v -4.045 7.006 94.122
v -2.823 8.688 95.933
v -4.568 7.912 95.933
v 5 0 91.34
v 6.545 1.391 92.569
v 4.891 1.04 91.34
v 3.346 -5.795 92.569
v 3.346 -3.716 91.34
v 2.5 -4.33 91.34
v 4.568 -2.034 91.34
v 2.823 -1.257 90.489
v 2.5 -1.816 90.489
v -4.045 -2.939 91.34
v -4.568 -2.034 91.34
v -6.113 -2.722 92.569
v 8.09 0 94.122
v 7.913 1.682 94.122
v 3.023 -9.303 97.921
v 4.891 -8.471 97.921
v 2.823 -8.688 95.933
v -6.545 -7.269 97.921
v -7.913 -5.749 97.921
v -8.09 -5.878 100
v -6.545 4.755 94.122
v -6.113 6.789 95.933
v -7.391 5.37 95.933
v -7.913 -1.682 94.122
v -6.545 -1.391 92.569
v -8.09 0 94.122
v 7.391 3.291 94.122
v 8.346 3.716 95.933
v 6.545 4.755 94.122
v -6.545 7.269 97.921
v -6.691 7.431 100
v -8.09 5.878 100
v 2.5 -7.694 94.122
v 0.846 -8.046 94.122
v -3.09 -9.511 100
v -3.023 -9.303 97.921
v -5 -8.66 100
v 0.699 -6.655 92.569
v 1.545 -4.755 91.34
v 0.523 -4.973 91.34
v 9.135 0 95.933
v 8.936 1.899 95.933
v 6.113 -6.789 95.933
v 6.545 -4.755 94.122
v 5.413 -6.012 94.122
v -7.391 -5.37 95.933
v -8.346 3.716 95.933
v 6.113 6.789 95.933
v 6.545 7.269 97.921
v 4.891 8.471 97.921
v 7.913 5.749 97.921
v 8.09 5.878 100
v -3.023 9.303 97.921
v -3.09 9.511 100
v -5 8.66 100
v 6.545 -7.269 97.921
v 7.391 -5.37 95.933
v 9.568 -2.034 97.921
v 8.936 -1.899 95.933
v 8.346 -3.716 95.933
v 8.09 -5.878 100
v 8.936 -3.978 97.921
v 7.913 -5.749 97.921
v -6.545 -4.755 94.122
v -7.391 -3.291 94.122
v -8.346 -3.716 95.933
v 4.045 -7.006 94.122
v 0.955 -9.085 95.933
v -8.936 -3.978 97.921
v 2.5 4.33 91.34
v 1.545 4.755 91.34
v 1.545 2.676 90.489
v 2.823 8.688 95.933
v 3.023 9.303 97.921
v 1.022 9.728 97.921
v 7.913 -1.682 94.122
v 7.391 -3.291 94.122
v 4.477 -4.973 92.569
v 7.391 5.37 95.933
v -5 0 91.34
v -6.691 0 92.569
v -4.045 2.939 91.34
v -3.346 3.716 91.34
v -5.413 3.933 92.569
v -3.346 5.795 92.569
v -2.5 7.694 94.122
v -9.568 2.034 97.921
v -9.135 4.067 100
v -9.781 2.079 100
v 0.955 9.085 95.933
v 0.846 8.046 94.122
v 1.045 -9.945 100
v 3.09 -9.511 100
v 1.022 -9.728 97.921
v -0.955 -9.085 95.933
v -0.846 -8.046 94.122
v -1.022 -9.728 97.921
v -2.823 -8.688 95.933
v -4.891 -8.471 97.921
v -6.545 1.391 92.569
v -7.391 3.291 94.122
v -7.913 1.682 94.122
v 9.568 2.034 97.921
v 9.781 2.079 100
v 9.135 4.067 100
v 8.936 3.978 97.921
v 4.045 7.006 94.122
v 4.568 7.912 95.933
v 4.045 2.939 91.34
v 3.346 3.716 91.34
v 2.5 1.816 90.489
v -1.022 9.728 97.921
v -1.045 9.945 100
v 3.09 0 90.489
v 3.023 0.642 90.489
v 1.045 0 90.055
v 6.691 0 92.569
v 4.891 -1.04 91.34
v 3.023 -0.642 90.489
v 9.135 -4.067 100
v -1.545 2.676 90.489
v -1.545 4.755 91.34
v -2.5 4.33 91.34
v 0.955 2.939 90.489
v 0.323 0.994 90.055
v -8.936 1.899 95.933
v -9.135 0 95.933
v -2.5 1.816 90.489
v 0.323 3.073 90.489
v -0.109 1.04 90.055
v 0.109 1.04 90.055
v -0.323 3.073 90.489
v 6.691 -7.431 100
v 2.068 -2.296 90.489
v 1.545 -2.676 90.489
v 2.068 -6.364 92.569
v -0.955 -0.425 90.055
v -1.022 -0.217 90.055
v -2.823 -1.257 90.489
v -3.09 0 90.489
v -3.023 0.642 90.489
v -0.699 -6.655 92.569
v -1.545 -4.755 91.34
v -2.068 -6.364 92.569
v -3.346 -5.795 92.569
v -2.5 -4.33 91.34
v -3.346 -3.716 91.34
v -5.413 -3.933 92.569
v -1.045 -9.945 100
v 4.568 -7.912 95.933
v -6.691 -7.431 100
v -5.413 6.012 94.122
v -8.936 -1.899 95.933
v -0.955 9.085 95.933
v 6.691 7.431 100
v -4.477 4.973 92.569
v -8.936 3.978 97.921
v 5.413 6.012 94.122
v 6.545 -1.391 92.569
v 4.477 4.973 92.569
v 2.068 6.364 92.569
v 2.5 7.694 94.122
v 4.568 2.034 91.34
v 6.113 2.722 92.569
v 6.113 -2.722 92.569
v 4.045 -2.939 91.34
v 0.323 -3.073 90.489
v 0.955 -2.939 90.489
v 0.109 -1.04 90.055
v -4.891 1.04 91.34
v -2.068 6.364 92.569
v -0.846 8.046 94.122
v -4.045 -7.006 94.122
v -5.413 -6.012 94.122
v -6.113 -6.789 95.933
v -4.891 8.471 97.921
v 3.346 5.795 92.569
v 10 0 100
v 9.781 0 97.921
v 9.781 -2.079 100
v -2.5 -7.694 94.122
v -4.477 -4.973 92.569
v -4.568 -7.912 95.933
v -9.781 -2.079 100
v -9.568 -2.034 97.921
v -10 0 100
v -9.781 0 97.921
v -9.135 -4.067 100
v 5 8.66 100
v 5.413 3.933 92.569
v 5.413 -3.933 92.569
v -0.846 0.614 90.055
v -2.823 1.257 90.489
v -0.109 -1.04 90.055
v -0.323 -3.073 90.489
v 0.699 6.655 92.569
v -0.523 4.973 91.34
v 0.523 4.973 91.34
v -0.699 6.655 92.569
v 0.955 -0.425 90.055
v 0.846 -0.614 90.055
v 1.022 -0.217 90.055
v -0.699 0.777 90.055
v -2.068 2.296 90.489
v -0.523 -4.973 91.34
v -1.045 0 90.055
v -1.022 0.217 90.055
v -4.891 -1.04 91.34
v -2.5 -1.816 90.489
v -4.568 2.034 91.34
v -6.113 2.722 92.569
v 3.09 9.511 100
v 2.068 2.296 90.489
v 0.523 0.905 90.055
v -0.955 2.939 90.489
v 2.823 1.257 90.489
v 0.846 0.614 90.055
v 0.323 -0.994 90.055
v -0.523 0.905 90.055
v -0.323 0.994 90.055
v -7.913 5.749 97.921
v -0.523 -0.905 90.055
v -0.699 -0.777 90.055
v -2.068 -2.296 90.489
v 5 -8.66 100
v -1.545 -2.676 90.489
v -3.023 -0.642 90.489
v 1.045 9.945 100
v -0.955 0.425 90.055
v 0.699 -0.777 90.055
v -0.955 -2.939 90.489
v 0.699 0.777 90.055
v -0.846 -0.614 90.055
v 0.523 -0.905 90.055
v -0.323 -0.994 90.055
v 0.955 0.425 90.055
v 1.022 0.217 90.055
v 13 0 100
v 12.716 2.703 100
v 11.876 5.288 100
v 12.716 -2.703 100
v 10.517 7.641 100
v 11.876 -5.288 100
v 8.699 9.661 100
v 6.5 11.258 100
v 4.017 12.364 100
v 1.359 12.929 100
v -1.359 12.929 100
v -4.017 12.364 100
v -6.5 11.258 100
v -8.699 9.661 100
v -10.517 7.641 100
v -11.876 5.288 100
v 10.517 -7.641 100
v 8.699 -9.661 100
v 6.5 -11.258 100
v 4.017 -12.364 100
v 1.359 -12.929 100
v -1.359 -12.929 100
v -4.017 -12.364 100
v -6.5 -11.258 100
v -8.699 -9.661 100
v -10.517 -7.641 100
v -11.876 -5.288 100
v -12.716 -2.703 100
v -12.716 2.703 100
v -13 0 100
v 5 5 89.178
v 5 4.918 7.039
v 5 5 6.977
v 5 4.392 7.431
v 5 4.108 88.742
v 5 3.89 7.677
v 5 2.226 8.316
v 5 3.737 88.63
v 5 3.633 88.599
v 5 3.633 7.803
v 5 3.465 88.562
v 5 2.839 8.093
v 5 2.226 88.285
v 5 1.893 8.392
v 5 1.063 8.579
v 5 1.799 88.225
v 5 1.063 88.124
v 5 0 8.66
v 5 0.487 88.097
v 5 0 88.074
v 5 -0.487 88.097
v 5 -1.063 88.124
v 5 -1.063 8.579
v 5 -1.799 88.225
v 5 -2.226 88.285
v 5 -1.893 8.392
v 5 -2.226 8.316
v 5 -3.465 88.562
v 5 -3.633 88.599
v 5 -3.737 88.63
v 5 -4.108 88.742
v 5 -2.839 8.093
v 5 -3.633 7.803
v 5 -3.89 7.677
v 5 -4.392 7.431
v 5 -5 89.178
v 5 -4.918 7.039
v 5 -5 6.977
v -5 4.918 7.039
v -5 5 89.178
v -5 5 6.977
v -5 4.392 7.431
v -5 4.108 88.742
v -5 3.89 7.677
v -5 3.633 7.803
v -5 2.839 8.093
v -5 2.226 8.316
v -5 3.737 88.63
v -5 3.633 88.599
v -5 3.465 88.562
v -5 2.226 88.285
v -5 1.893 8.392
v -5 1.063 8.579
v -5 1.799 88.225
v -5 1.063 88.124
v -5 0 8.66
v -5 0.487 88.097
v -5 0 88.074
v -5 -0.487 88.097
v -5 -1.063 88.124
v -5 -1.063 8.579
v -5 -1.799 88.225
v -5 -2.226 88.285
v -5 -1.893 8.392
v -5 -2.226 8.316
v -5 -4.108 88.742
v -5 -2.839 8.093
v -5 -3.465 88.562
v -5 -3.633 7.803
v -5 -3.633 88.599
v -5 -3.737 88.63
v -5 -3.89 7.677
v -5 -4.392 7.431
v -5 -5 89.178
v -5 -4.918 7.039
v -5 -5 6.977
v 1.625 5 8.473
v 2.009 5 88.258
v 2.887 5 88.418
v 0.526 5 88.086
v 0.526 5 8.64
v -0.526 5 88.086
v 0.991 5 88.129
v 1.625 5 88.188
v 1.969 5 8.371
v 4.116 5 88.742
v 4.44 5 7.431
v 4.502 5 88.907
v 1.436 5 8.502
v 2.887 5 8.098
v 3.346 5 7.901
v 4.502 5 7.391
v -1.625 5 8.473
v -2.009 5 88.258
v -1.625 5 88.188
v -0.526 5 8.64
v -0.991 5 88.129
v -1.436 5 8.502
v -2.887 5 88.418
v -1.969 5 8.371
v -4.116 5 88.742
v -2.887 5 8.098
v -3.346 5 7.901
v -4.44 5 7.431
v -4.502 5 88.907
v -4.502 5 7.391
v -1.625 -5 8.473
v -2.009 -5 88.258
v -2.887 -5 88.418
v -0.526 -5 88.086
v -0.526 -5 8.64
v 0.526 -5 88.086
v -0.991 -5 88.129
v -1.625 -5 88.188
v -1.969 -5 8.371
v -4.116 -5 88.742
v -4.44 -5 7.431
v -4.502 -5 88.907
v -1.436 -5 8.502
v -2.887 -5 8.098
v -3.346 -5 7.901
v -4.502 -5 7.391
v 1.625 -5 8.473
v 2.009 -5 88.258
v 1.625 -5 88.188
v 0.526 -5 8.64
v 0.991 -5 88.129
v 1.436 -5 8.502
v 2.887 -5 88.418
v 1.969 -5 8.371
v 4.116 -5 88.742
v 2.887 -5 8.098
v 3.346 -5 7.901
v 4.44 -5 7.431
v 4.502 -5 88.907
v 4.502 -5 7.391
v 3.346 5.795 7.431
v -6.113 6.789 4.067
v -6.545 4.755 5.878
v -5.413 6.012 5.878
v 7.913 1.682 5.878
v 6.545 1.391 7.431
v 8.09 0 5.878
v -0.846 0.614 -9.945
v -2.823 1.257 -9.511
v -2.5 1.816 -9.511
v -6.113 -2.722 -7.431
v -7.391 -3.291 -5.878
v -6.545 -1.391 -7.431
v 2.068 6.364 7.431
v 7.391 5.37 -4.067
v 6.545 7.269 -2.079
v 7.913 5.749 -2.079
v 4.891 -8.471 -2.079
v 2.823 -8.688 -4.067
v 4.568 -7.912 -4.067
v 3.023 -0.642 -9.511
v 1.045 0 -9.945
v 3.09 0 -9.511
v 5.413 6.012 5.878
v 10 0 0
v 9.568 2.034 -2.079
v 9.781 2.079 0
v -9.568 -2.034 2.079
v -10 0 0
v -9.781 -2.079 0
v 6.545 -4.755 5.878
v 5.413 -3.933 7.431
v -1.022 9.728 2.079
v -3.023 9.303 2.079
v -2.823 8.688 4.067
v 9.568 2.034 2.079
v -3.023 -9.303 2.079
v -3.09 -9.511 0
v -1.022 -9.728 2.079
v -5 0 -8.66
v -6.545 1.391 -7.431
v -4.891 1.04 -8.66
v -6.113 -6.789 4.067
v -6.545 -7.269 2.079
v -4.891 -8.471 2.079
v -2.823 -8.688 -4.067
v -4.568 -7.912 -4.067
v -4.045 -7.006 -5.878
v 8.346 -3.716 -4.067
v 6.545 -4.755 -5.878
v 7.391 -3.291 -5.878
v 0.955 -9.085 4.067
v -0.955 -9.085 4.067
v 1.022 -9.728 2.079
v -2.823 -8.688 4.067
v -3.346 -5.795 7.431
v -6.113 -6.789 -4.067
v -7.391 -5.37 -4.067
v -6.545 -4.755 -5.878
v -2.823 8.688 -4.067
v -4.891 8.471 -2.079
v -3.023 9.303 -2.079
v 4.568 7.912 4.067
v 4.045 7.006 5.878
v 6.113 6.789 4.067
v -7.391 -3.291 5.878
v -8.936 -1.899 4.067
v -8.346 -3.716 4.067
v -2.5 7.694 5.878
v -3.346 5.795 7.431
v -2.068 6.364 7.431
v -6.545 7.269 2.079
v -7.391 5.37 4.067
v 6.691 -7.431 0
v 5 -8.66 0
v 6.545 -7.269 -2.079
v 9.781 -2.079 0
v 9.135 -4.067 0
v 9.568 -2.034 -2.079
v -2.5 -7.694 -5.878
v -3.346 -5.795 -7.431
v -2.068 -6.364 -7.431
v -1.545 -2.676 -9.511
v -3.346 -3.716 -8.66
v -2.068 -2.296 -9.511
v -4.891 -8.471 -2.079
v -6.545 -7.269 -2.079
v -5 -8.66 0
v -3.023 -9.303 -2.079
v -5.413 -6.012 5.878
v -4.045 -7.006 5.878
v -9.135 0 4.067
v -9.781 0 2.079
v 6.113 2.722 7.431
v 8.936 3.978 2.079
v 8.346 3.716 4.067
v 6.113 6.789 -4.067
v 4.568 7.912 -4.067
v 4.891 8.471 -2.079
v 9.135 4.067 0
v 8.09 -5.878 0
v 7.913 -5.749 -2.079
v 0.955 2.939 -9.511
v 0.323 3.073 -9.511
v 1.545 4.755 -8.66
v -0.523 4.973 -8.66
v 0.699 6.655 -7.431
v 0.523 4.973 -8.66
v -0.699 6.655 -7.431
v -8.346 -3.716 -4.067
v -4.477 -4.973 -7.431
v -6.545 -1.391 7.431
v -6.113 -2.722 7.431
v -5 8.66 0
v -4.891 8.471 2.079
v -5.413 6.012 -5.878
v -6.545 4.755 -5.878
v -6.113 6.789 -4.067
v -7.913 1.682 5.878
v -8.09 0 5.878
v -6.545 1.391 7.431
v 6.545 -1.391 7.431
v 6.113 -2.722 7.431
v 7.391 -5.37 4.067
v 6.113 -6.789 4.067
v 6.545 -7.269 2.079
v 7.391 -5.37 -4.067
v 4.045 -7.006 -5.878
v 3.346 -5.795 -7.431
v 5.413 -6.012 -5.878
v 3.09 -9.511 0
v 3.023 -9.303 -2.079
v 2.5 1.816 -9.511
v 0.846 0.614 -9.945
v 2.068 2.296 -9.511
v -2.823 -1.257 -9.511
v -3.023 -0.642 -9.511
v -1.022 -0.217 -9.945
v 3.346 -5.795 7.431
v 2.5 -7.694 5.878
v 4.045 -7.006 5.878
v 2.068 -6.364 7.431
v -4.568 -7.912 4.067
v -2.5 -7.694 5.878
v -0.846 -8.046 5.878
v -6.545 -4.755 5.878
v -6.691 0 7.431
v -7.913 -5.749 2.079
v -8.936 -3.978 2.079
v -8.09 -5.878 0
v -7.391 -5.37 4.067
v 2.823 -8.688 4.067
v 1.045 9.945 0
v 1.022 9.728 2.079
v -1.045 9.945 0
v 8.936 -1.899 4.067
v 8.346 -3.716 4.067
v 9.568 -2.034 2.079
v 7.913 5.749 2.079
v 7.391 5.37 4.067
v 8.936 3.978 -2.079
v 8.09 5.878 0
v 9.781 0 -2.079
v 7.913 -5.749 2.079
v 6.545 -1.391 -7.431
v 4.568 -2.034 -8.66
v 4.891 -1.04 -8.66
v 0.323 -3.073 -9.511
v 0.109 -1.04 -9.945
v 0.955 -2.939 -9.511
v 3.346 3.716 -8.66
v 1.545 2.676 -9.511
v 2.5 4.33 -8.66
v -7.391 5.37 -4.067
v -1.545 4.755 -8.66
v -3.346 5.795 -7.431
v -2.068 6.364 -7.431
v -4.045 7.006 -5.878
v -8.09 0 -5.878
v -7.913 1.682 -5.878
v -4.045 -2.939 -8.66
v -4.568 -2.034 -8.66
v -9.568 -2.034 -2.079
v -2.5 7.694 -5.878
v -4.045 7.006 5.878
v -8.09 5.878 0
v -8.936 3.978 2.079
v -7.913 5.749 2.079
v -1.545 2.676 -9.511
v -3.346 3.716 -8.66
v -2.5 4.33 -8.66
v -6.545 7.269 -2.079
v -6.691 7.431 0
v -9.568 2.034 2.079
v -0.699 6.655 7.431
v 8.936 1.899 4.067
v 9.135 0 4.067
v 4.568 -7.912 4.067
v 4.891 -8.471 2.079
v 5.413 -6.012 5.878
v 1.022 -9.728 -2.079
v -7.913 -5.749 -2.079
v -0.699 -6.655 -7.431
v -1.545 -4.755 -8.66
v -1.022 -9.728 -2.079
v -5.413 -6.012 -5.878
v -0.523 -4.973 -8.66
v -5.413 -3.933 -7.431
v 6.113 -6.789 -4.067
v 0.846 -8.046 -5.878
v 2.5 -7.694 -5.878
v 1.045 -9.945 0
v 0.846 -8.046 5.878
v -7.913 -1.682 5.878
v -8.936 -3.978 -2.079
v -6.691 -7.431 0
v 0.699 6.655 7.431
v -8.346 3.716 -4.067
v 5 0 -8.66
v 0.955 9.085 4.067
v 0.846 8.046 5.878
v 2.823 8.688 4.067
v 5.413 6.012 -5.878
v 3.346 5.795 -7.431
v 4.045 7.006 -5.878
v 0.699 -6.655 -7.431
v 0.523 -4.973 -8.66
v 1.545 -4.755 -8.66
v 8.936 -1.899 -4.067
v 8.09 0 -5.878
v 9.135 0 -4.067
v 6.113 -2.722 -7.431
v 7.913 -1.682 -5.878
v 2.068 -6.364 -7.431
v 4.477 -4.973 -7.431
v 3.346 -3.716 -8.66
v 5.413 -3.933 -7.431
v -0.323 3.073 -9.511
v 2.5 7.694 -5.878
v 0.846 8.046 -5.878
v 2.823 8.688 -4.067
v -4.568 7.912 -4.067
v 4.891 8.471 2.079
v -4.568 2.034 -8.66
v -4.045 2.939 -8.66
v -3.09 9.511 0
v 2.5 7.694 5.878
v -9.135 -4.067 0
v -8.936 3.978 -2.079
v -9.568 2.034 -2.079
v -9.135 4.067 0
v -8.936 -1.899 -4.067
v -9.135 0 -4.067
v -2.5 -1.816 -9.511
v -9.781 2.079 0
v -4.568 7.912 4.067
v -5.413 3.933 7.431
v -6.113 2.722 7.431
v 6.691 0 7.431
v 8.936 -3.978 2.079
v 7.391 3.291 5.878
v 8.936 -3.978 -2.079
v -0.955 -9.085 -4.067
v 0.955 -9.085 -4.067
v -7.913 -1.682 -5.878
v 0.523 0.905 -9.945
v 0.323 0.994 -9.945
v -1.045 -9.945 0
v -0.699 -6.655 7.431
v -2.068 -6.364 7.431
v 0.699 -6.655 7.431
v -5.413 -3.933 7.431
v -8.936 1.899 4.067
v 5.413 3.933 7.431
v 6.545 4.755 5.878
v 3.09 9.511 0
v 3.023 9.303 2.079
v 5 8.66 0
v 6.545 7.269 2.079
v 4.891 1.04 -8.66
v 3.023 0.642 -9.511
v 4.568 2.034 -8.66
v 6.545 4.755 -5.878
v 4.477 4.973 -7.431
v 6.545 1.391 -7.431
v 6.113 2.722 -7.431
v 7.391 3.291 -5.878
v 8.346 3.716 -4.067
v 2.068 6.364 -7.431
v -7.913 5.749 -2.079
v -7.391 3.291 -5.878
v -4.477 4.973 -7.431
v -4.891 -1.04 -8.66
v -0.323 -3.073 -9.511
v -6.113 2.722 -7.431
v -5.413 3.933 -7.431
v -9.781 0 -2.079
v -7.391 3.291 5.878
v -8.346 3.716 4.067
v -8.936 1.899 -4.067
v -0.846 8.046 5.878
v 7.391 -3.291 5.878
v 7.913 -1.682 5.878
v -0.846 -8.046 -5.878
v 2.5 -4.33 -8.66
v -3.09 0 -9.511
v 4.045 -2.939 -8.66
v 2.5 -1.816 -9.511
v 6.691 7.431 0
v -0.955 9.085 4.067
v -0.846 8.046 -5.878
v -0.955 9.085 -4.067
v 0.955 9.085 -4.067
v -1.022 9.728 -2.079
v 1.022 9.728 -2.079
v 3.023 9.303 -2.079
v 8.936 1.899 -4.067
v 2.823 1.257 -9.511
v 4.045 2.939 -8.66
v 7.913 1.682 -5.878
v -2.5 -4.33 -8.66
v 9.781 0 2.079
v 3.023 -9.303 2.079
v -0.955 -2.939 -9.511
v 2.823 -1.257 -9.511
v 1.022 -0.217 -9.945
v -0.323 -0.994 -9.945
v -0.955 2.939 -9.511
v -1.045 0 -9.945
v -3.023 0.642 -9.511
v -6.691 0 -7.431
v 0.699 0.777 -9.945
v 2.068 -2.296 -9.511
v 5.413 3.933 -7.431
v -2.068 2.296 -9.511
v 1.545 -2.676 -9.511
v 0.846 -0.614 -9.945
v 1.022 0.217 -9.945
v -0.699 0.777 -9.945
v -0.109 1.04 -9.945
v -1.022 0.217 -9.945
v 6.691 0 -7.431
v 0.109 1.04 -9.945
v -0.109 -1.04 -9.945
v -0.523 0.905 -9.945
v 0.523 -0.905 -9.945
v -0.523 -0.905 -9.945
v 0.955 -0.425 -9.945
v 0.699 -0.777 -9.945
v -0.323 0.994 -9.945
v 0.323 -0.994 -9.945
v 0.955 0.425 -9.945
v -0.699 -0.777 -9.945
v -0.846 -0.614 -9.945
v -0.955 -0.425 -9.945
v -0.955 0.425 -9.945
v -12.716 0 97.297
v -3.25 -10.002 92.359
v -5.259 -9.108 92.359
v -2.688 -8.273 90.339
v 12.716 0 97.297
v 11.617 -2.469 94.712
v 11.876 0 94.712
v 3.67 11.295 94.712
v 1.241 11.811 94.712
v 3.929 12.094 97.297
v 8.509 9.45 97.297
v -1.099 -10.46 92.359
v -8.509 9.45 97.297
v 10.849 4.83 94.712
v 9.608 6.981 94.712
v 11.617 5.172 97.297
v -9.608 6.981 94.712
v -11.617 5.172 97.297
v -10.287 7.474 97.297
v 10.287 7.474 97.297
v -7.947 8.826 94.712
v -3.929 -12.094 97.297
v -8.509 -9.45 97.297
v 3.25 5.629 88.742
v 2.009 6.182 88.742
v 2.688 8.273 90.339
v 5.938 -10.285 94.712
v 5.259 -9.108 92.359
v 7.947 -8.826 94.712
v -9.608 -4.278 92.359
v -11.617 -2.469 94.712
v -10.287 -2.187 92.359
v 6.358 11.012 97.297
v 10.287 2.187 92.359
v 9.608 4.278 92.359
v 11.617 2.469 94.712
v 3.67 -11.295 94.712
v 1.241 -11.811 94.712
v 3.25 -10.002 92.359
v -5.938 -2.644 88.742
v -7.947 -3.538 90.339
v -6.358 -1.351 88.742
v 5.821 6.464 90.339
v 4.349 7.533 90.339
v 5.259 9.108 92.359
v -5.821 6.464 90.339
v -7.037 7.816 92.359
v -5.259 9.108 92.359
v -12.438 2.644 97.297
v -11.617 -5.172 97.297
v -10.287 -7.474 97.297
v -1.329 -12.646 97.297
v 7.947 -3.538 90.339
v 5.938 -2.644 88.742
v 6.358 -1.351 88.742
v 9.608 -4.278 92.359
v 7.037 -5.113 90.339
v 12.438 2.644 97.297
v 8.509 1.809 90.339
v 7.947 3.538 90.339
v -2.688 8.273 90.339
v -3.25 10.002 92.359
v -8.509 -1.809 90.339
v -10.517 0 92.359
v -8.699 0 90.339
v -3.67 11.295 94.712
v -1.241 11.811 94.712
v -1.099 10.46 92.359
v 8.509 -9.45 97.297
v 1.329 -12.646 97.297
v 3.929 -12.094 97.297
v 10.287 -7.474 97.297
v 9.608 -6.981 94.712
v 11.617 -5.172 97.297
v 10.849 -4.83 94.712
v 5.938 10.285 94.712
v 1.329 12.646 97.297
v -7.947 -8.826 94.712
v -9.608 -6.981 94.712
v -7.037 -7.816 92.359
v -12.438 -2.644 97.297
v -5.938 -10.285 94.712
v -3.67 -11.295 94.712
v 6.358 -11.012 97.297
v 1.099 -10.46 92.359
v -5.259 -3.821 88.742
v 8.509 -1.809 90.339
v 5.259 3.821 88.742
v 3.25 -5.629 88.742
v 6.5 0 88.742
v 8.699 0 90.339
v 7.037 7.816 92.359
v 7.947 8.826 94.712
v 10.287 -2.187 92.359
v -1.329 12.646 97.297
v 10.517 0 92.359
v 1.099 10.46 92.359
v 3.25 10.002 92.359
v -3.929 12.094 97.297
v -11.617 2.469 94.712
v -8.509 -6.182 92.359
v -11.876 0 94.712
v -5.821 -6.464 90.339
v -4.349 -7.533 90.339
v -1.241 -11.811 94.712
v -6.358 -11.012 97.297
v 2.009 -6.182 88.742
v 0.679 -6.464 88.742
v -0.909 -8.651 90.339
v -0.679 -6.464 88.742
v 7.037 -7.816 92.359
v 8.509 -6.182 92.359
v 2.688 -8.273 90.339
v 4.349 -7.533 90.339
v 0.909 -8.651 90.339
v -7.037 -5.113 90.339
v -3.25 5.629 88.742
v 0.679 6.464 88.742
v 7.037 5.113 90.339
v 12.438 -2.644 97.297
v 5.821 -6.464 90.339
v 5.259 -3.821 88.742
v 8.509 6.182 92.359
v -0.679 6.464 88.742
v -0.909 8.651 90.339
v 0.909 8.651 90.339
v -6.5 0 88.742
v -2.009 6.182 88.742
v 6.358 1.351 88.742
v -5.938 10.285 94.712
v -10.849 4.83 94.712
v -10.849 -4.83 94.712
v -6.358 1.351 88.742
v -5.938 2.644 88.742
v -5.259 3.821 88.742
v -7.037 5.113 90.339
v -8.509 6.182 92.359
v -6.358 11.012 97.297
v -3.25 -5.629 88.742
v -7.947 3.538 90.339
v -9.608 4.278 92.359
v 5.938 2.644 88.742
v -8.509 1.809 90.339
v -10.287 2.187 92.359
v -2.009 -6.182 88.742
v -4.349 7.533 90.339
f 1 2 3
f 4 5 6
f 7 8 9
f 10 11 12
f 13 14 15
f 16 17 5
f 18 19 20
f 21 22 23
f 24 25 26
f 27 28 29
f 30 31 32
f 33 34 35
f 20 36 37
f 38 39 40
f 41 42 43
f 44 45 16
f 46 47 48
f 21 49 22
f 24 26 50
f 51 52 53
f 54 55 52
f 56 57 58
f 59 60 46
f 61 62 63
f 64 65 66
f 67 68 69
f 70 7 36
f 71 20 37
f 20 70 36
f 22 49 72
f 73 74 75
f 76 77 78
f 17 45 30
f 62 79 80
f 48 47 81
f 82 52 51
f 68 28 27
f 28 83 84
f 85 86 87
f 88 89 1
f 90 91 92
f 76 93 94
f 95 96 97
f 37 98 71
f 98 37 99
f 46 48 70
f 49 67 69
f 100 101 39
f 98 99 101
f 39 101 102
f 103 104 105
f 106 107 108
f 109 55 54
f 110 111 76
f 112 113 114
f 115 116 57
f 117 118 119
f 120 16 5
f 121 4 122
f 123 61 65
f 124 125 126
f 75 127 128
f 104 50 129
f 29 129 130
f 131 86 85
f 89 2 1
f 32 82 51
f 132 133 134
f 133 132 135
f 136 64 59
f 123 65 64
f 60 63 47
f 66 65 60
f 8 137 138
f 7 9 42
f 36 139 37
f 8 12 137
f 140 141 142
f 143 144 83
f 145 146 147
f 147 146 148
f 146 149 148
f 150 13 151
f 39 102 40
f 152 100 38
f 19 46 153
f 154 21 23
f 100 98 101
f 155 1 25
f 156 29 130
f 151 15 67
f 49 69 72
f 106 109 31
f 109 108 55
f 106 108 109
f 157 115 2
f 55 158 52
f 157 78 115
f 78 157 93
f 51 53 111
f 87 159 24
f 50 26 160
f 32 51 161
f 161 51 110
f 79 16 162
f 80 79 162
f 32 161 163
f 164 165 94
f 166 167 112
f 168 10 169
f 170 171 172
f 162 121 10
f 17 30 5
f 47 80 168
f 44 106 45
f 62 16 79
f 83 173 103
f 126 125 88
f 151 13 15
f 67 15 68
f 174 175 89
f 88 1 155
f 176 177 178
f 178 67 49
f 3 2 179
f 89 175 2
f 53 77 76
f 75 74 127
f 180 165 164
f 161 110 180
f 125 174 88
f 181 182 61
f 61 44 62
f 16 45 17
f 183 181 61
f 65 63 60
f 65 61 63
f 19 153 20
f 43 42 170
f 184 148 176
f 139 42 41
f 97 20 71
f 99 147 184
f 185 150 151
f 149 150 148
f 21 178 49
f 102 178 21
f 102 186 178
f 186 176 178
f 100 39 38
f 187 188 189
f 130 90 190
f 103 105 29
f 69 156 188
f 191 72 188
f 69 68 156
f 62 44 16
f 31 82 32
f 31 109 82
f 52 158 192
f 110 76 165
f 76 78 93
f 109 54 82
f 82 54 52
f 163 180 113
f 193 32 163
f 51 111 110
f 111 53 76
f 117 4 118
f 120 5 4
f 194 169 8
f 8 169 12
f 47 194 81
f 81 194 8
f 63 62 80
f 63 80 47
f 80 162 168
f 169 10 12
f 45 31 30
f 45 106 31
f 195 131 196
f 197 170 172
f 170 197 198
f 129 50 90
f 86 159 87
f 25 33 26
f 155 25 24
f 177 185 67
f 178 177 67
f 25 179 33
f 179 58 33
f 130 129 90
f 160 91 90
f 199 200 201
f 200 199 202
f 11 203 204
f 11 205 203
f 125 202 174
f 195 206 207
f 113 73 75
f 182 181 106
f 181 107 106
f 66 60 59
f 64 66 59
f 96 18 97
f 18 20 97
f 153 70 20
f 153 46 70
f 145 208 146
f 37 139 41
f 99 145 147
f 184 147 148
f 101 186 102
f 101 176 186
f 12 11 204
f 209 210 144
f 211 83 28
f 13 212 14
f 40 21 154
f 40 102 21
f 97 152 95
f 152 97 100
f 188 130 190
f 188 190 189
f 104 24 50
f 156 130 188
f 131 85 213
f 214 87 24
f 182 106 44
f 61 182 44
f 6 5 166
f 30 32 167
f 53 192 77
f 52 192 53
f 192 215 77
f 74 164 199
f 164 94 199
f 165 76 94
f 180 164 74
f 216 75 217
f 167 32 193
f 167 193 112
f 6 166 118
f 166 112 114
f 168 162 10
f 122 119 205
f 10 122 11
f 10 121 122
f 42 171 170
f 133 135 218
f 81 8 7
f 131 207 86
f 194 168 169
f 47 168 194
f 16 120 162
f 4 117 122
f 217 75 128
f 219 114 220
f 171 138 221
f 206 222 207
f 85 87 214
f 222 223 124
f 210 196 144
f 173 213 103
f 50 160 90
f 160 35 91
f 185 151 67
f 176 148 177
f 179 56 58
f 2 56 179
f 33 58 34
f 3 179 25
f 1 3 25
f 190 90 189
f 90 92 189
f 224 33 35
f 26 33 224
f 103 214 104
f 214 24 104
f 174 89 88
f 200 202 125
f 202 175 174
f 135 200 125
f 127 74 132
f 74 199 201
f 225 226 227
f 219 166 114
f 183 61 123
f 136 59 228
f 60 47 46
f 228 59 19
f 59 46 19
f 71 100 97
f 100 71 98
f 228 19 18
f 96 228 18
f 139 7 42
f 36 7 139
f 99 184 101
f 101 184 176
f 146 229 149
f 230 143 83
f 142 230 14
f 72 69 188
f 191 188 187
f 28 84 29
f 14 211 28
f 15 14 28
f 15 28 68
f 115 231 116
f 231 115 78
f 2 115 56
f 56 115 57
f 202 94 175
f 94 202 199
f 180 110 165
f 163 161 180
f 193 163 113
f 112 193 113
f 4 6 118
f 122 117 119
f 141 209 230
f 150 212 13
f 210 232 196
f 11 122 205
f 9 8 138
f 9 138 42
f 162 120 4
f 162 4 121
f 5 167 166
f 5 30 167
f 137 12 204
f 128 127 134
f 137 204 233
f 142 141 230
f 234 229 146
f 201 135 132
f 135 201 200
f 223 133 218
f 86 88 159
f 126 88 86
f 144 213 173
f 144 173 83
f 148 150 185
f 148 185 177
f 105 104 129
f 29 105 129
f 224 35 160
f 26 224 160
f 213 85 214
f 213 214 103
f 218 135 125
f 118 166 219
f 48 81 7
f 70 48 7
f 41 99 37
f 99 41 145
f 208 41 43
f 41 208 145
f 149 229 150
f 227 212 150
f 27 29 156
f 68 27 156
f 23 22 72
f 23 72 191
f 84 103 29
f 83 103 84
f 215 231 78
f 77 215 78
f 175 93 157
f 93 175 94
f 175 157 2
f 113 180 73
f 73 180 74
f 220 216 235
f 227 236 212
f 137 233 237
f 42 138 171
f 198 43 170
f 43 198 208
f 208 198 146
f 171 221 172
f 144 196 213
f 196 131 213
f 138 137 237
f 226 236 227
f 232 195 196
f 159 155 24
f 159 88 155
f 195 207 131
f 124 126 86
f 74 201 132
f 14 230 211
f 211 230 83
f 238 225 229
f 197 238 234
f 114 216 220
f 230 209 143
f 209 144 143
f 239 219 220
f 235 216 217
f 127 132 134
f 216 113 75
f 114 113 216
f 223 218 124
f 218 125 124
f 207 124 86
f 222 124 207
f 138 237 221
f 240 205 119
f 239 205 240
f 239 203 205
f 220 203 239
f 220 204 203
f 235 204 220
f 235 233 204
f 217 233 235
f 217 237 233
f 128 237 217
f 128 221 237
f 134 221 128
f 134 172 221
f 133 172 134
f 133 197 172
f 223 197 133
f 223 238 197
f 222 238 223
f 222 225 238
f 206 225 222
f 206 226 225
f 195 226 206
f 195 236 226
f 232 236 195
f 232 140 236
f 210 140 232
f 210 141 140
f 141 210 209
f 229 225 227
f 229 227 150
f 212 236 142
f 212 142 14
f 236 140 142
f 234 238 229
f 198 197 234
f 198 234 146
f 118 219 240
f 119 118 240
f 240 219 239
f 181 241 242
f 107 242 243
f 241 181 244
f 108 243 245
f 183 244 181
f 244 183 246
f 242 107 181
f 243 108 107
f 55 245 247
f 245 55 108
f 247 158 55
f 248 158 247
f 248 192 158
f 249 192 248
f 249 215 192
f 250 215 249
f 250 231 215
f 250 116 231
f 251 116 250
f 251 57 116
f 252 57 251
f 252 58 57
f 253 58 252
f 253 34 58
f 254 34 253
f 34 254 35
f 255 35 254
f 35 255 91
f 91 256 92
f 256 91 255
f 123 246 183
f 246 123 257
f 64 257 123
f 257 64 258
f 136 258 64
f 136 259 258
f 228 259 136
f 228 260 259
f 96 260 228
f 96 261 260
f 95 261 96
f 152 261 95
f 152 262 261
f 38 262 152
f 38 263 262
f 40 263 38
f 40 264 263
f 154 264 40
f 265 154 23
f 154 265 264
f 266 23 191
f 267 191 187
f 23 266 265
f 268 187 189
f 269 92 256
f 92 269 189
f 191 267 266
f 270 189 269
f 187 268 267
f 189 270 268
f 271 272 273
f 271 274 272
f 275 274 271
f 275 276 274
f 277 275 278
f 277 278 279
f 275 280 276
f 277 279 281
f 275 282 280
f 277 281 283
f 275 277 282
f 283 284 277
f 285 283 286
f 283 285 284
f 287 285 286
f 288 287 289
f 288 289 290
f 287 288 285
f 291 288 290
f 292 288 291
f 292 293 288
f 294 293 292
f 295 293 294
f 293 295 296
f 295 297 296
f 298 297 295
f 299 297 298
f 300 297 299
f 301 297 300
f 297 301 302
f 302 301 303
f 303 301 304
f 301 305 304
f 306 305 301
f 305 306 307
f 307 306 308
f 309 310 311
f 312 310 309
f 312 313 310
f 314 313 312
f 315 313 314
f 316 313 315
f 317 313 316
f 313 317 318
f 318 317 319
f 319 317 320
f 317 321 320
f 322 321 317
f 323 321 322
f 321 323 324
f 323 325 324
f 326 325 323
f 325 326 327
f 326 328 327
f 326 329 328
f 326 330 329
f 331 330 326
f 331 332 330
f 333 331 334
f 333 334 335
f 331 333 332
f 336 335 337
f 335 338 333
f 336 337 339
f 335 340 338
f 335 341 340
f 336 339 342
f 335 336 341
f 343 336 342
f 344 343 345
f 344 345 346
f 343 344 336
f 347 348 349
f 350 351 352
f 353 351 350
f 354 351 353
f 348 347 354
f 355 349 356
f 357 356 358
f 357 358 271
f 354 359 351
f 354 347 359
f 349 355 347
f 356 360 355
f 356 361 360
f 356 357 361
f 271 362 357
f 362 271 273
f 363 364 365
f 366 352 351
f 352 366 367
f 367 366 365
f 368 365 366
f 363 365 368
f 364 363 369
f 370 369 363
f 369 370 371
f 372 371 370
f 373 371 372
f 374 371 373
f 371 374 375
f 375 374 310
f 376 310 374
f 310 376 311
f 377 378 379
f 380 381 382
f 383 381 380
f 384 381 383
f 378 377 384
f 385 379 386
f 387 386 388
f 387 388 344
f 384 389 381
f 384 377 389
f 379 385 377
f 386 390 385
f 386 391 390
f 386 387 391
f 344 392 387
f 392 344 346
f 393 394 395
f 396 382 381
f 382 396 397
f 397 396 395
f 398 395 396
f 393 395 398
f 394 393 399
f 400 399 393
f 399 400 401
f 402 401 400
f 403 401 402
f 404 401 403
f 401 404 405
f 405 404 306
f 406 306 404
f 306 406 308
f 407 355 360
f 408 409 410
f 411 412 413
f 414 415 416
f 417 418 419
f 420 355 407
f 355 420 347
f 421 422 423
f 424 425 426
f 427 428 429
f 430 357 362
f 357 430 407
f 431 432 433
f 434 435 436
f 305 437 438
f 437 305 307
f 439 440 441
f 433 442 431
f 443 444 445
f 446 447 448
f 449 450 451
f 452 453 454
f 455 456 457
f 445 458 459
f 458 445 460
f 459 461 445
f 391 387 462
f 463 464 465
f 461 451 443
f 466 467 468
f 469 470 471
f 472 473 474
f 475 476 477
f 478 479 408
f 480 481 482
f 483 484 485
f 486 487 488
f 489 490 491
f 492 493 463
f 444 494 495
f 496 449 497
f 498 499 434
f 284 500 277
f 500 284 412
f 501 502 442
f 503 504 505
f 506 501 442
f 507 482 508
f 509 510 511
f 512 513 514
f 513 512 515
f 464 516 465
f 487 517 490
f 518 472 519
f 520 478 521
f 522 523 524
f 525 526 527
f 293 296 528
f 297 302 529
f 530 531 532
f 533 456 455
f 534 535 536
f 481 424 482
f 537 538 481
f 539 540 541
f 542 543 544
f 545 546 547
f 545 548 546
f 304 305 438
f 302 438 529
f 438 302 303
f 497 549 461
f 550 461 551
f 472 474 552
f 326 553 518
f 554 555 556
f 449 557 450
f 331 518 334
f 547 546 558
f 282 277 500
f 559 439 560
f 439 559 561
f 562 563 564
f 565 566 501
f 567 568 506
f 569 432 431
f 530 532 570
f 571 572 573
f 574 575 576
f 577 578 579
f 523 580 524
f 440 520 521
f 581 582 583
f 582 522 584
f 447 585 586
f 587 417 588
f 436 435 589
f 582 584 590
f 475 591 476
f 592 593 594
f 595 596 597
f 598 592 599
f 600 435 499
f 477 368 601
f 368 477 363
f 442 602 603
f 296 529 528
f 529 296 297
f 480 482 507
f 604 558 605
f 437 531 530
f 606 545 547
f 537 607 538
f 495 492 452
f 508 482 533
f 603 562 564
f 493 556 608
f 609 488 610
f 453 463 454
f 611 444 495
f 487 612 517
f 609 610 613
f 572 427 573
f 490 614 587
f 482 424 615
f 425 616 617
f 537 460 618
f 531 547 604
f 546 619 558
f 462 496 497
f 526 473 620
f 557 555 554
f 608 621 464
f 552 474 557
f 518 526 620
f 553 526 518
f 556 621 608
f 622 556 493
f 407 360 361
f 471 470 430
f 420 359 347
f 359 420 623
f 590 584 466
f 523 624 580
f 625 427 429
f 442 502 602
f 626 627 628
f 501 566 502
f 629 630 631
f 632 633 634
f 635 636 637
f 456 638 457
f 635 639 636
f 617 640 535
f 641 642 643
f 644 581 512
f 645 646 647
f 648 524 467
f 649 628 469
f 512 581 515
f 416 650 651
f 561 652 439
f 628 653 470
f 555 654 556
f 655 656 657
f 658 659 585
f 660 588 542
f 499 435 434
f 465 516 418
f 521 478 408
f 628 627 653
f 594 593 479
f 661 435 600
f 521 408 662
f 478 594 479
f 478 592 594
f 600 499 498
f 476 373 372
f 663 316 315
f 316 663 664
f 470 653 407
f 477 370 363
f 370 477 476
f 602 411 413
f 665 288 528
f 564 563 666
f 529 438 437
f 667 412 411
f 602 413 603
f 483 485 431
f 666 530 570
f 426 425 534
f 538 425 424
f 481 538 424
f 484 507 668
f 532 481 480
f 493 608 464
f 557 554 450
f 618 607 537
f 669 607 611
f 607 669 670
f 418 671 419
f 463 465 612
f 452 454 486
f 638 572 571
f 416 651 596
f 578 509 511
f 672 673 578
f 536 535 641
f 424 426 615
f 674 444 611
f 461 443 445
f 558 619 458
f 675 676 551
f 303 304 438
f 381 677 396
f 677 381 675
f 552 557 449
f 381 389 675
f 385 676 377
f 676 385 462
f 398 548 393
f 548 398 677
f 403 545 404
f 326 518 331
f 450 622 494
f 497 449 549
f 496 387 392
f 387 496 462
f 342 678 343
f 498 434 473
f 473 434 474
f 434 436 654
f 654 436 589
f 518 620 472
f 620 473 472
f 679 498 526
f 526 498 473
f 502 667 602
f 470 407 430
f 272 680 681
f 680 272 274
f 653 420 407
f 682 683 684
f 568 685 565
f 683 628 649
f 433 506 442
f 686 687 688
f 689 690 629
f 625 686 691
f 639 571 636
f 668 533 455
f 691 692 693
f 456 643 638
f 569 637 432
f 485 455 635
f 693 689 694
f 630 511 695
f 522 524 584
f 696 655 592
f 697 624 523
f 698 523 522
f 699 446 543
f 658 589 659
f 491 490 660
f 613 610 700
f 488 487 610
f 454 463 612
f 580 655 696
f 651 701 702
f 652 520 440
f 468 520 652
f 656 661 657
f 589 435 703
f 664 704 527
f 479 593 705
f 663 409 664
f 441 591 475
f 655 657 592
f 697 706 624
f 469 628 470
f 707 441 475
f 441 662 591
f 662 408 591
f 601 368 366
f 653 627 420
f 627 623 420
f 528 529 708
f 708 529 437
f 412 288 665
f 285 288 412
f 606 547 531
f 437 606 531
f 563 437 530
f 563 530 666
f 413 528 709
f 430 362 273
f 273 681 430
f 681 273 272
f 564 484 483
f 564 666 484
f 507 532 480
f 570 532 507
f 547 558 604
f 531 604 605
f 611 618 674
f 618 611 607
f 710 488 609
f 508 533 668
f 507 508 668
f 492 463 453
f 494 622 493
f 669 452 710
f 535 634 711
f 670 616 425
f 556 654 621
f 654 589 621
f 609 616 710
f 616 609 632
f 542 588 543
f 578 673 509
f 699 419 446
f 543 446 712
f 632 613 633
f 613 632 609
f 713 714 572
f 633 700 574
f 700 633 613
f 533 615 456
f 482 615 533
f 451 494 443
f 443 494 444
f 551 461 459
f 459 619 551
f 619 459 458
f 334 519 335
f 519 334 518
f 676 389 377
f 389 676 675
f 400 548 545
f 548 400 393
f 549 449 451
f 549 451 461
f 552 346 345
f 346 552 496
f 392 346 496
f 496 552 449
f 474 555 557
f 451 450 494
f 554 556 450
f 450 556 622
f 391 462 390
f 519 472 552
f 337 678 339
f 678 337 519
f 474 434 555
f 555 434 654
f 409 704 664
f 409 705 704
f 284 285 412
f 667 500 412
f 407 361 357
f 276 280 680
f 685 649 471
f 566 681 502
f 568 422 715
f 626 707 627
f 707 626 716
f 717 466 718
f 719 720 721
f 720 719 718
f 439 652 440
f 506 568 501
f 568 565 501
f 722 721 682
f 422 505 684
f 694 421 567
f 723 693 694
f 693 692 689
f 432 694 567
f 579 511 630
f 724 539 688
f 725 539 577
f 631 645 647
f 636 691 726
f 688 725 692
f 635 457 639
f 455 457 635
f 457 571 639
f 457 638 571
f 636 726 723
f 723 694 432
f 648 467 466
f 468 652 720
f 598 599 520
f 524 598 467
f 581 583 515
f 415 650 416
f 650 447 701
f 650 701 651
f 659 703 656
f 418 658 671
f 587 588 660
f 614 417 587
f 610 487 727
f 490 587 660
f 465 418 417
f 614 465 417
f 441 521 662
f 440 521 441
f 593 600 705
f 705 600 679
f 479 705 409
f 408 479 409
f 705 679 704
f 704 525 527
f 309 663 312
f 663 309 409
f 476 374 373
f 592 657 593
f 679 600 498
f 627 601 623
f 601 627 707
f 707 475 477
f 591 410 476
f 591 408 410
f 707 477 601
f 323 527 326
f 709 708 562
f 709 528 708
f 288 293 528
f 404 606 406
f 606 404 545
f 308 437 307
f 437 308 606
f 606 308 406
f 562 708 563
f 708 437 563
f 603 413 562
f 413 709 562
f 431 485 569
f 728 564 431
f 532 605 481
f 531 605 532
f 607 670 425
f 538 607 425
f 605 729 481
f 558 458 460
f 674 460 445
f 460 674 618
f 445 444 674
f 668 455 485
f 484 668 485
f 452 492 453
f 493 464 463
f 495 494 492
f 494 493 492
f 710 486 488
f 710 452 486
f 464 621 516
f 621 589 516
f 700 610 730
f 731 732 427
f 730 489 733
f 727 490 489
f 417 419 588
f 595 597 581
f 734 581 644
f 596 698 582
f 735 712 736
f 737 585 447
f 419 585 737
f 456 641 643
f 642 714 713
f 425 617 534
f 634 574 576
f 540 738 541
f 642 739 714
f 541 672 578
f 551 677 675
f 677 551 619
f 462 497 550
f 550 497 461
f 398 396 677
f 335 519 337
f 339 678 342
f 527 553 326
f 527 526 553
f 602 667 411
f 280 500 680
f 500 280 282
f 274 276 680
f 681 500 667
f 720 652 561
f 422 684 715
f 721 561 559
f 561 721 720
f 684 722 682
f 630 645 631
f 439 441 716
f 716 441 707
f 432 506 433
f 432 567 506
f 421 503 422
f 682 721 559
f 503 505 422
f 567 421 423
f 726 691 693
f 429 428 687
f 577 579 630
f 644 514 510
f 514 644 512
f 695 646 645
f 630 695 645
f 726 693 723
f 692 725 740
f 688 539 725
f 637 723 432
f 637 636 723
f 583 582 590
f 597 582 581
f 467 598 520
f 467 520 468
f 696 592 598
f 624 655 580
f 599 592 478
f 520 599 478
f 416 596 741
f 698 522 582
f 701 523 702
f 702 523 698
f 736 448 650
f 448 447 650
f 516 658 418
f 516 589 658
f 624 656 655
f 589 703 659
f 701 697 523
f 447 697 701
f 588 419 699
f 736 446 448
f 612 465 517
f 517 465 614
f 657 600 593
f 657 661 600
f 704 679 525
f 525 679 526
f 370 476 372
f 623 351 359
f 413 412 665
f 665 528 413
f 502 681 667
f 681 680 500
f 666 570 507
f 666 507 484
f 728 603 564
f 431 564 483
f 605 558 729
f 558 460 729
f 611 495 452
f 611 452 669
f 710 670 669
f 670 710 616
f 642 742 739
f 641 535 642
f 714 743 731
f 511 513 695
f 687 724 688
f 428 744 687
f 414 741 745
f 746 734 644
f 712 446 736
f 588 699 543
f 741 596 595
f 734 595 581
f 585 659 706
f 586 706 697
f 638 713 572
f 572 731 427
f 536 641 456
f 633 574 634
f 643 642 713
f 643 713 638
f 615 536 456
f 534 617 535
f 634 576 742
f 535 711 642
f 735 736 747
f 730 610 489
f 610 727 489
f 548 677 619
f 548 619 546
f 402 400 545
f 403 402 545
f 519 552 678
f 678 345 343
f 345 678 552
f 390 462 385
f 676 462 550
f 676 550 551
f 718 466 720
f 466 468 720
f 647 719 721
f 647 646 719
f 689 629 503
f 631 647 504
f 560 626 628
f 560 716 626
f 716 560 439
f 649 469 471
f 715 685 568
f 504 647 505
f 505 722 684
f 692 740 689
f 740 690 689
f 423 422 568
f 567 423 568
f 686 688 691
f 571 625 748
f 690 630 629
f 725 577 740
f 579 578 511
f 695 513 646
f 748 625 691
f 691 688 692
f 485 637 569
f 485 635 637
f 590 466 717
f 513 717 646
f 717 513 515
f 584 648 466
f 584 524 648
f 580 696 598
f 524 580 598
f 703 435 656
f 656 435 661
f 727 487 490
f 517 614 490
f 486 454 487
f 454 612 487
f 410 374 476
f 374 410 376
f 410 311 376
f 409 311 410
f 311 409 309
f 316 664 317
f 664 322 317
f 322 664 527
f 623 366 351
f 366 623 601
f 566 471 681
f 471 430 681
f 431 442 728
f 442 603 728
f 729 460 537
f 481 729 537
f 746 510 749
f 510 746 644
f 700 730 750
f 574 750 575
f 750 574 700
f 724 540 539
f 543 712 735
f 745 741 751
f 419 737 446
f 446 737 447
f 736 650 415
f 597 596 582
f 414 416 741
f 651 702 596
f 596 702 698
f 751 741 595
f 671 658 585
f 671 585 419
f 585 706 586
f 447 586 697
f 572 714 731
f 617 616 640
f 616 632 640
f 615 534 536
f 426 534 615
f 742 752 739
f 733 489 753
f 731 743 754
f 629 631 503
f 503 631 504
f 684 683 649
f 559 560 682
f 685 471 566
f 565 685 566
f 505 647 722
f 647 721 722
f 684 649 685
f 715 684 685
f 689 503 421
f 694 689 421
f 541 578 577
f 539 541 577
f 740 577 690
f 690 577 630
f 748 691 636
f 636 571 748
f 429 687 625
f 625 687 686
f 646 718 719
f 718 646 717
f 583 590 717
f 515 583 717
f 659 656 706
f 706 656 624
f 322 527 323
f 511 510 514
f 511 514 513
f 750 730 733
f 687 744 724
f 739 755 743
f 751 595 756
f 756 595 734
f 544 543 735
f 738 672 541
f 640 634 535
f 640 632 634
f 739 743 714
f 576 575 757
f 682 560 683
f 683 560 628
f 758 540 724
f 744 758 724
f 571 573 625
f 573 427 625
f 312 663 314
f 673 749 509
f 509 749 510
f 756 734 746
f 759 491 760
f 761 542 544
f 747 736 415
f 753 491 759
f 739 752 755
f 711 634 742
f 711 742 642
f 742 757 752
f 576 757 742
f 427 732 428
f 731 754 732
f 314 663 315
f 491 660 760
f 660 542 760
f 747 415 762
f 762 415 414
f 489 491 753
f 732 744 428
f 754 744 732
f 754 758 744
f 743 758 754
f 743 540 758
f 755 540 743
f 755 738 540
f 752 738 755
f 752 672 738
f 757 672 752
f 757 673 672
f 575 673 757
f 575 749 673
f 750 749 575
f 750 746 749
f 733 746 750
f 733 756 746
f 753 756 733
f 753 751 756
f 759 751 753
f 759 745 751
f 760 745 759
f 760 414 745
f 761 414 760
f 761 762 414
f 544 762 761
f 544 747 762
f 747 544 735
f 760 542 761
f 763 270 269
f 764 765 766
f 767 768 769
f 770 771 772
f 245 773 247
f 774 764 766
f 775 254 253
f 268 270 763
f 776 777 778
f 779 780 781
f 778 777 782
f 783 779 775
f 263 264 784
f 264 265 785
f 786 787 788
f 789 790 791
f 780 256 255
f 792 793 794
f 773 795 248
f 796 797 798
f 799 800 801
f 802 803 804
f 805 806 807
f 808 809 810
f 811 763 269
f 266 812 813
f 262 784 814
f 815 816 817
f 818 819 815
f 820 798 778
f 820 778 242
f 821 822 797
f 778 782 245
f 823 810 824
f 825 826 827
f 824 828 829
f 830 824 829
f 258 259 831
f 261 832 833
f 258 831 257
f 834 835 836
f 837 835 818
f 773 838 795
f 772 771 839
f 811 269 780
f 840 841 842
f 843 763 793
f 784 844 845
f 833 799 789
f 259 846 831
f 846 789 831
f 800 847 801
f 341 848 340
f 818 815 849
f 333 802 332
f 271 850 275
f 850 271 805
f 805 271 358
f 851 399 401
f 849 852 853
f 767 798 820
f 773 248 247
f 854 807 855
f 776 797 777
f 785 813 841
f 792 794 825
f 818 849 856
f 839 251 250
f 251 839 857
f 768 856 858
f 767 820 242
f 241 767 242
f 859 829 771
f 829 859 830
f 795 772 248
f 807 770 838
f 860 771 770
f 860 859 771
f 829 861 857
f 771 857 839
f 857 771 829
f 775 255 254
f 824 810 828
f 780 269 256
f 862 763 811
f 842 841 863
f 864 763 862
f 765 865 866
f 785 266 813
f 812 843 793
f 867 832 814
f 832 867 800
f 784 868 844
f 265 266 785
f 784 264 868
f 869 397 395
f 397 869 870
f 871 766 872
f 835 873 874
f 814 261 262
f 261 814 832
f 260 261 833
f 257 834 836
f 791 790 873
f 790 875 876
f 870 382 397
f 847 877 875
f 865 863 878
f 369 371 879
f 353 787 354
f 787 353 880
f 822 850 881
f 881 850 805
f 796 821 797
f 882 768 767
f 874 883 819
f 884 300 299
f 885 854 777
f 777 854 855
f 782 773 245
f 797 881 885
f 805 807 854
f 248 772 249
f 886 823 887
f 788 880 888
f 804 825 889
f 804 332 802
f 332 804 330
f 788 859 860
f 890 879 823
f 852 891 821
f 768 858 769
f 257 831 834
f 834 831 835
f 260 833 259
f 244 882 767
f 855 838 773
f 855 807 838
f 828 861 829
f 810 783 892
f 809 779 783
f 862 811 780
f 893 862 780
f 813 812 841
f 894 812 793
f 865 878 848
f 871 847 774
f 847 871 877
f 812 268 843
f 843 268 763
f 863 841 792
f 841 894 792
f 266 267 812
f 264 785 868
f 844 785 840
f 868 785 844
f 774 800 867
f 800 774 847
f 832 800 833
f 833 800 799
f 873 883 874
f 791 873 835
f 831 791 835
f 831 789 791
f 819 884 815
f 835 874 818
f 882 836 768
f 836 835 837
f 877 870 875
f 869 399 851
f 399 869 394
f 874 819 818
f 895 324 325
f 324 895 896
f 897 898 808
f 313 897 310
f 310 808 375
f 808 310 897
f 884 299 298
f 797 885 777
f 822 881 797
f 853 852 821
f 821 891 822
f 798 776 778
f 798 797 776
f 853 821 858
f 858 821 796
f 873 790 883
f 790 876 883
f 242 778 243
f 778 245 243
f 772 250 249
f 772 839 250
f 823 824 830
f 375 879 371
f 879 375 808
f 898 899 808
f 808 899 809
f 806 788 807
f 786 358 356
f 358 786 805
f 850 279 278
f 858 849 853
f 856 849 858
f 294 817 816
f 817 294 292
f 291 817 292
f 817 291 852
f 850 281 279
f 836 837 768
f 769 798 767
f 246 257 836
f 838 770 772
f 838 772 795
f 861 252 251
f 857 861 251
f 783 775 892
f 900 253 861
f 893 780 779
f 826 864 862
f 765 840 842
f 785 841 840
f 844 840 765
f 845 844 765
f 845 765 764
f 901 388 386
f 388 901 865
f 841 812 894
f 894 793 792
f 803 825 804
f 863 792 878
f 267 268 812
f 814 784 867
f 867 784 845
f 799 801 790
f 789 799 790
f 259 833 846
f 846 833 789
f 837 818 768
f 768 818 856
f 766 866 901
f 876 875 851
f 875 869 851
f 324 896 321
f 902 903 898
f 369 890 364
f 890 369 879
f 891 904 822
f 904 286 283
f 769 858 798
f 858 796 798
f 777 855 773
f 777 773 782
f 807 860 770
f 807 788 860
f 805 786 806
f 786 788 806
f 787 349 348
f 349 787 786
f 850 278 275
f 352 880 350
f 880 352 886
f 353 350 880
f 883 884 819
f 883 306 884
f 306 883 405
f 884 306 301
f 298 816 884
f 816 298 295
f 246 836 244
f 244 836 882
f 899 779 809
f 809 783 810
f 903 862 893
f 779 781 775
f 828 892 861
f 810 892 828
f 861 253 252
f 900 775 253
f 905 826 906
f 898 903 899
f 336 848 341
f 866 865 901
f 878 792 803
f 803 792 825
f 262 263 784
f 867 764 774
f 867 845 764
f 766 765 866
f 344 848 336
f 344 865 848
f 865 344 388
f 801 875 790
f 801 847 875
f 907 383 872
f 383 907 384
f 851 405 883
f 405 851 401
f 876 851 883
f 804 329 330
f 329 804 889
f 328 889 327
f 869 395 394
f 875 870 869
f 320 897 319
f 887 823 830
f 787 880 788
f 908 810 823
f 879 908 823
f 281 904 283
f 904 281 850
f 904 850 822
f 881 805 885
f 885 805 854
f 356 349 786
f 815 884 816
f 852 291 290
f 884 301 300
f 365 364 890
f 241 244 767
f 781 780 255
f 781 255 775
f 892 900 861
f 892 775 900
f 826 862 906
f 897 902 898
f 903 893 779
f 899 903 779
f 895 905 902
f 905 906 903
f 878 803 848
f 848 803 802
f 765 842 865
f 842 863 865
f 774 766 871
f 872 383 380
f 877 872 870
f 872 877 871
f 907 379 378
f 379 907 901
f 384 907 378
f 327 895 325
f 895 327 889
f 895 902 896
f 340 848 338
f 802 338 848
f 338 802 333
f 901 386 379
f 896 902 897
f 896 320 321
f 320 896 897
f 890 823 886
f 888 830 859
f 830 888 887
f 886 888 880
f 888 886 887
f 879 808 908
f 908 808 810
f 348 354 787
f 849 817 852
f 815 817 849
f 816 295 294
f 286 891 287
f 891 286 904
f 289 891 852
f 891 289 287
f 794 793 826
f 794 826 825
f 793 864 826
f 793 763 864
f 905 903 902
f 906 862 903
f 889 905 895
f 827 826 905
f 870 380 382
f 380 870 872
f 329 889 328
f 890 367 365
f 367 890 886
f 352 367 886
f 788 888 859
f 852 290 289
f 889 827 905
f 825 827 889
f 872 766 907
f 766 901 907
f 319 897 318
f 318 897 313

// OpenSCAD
difference(){
    union() {
        translate([-5,-5,0]){
            cube([10,10,100]);
        }
        sphere(r=10);
        translate([0,0,100]) {
            sphere(13);
        }
    }
    union() {
        translate([0,0,100]){
            sphere(10);
        }        
        translate([0,0,150]){
            cube([100,100,100], center=true);
        }
    }
    
}
